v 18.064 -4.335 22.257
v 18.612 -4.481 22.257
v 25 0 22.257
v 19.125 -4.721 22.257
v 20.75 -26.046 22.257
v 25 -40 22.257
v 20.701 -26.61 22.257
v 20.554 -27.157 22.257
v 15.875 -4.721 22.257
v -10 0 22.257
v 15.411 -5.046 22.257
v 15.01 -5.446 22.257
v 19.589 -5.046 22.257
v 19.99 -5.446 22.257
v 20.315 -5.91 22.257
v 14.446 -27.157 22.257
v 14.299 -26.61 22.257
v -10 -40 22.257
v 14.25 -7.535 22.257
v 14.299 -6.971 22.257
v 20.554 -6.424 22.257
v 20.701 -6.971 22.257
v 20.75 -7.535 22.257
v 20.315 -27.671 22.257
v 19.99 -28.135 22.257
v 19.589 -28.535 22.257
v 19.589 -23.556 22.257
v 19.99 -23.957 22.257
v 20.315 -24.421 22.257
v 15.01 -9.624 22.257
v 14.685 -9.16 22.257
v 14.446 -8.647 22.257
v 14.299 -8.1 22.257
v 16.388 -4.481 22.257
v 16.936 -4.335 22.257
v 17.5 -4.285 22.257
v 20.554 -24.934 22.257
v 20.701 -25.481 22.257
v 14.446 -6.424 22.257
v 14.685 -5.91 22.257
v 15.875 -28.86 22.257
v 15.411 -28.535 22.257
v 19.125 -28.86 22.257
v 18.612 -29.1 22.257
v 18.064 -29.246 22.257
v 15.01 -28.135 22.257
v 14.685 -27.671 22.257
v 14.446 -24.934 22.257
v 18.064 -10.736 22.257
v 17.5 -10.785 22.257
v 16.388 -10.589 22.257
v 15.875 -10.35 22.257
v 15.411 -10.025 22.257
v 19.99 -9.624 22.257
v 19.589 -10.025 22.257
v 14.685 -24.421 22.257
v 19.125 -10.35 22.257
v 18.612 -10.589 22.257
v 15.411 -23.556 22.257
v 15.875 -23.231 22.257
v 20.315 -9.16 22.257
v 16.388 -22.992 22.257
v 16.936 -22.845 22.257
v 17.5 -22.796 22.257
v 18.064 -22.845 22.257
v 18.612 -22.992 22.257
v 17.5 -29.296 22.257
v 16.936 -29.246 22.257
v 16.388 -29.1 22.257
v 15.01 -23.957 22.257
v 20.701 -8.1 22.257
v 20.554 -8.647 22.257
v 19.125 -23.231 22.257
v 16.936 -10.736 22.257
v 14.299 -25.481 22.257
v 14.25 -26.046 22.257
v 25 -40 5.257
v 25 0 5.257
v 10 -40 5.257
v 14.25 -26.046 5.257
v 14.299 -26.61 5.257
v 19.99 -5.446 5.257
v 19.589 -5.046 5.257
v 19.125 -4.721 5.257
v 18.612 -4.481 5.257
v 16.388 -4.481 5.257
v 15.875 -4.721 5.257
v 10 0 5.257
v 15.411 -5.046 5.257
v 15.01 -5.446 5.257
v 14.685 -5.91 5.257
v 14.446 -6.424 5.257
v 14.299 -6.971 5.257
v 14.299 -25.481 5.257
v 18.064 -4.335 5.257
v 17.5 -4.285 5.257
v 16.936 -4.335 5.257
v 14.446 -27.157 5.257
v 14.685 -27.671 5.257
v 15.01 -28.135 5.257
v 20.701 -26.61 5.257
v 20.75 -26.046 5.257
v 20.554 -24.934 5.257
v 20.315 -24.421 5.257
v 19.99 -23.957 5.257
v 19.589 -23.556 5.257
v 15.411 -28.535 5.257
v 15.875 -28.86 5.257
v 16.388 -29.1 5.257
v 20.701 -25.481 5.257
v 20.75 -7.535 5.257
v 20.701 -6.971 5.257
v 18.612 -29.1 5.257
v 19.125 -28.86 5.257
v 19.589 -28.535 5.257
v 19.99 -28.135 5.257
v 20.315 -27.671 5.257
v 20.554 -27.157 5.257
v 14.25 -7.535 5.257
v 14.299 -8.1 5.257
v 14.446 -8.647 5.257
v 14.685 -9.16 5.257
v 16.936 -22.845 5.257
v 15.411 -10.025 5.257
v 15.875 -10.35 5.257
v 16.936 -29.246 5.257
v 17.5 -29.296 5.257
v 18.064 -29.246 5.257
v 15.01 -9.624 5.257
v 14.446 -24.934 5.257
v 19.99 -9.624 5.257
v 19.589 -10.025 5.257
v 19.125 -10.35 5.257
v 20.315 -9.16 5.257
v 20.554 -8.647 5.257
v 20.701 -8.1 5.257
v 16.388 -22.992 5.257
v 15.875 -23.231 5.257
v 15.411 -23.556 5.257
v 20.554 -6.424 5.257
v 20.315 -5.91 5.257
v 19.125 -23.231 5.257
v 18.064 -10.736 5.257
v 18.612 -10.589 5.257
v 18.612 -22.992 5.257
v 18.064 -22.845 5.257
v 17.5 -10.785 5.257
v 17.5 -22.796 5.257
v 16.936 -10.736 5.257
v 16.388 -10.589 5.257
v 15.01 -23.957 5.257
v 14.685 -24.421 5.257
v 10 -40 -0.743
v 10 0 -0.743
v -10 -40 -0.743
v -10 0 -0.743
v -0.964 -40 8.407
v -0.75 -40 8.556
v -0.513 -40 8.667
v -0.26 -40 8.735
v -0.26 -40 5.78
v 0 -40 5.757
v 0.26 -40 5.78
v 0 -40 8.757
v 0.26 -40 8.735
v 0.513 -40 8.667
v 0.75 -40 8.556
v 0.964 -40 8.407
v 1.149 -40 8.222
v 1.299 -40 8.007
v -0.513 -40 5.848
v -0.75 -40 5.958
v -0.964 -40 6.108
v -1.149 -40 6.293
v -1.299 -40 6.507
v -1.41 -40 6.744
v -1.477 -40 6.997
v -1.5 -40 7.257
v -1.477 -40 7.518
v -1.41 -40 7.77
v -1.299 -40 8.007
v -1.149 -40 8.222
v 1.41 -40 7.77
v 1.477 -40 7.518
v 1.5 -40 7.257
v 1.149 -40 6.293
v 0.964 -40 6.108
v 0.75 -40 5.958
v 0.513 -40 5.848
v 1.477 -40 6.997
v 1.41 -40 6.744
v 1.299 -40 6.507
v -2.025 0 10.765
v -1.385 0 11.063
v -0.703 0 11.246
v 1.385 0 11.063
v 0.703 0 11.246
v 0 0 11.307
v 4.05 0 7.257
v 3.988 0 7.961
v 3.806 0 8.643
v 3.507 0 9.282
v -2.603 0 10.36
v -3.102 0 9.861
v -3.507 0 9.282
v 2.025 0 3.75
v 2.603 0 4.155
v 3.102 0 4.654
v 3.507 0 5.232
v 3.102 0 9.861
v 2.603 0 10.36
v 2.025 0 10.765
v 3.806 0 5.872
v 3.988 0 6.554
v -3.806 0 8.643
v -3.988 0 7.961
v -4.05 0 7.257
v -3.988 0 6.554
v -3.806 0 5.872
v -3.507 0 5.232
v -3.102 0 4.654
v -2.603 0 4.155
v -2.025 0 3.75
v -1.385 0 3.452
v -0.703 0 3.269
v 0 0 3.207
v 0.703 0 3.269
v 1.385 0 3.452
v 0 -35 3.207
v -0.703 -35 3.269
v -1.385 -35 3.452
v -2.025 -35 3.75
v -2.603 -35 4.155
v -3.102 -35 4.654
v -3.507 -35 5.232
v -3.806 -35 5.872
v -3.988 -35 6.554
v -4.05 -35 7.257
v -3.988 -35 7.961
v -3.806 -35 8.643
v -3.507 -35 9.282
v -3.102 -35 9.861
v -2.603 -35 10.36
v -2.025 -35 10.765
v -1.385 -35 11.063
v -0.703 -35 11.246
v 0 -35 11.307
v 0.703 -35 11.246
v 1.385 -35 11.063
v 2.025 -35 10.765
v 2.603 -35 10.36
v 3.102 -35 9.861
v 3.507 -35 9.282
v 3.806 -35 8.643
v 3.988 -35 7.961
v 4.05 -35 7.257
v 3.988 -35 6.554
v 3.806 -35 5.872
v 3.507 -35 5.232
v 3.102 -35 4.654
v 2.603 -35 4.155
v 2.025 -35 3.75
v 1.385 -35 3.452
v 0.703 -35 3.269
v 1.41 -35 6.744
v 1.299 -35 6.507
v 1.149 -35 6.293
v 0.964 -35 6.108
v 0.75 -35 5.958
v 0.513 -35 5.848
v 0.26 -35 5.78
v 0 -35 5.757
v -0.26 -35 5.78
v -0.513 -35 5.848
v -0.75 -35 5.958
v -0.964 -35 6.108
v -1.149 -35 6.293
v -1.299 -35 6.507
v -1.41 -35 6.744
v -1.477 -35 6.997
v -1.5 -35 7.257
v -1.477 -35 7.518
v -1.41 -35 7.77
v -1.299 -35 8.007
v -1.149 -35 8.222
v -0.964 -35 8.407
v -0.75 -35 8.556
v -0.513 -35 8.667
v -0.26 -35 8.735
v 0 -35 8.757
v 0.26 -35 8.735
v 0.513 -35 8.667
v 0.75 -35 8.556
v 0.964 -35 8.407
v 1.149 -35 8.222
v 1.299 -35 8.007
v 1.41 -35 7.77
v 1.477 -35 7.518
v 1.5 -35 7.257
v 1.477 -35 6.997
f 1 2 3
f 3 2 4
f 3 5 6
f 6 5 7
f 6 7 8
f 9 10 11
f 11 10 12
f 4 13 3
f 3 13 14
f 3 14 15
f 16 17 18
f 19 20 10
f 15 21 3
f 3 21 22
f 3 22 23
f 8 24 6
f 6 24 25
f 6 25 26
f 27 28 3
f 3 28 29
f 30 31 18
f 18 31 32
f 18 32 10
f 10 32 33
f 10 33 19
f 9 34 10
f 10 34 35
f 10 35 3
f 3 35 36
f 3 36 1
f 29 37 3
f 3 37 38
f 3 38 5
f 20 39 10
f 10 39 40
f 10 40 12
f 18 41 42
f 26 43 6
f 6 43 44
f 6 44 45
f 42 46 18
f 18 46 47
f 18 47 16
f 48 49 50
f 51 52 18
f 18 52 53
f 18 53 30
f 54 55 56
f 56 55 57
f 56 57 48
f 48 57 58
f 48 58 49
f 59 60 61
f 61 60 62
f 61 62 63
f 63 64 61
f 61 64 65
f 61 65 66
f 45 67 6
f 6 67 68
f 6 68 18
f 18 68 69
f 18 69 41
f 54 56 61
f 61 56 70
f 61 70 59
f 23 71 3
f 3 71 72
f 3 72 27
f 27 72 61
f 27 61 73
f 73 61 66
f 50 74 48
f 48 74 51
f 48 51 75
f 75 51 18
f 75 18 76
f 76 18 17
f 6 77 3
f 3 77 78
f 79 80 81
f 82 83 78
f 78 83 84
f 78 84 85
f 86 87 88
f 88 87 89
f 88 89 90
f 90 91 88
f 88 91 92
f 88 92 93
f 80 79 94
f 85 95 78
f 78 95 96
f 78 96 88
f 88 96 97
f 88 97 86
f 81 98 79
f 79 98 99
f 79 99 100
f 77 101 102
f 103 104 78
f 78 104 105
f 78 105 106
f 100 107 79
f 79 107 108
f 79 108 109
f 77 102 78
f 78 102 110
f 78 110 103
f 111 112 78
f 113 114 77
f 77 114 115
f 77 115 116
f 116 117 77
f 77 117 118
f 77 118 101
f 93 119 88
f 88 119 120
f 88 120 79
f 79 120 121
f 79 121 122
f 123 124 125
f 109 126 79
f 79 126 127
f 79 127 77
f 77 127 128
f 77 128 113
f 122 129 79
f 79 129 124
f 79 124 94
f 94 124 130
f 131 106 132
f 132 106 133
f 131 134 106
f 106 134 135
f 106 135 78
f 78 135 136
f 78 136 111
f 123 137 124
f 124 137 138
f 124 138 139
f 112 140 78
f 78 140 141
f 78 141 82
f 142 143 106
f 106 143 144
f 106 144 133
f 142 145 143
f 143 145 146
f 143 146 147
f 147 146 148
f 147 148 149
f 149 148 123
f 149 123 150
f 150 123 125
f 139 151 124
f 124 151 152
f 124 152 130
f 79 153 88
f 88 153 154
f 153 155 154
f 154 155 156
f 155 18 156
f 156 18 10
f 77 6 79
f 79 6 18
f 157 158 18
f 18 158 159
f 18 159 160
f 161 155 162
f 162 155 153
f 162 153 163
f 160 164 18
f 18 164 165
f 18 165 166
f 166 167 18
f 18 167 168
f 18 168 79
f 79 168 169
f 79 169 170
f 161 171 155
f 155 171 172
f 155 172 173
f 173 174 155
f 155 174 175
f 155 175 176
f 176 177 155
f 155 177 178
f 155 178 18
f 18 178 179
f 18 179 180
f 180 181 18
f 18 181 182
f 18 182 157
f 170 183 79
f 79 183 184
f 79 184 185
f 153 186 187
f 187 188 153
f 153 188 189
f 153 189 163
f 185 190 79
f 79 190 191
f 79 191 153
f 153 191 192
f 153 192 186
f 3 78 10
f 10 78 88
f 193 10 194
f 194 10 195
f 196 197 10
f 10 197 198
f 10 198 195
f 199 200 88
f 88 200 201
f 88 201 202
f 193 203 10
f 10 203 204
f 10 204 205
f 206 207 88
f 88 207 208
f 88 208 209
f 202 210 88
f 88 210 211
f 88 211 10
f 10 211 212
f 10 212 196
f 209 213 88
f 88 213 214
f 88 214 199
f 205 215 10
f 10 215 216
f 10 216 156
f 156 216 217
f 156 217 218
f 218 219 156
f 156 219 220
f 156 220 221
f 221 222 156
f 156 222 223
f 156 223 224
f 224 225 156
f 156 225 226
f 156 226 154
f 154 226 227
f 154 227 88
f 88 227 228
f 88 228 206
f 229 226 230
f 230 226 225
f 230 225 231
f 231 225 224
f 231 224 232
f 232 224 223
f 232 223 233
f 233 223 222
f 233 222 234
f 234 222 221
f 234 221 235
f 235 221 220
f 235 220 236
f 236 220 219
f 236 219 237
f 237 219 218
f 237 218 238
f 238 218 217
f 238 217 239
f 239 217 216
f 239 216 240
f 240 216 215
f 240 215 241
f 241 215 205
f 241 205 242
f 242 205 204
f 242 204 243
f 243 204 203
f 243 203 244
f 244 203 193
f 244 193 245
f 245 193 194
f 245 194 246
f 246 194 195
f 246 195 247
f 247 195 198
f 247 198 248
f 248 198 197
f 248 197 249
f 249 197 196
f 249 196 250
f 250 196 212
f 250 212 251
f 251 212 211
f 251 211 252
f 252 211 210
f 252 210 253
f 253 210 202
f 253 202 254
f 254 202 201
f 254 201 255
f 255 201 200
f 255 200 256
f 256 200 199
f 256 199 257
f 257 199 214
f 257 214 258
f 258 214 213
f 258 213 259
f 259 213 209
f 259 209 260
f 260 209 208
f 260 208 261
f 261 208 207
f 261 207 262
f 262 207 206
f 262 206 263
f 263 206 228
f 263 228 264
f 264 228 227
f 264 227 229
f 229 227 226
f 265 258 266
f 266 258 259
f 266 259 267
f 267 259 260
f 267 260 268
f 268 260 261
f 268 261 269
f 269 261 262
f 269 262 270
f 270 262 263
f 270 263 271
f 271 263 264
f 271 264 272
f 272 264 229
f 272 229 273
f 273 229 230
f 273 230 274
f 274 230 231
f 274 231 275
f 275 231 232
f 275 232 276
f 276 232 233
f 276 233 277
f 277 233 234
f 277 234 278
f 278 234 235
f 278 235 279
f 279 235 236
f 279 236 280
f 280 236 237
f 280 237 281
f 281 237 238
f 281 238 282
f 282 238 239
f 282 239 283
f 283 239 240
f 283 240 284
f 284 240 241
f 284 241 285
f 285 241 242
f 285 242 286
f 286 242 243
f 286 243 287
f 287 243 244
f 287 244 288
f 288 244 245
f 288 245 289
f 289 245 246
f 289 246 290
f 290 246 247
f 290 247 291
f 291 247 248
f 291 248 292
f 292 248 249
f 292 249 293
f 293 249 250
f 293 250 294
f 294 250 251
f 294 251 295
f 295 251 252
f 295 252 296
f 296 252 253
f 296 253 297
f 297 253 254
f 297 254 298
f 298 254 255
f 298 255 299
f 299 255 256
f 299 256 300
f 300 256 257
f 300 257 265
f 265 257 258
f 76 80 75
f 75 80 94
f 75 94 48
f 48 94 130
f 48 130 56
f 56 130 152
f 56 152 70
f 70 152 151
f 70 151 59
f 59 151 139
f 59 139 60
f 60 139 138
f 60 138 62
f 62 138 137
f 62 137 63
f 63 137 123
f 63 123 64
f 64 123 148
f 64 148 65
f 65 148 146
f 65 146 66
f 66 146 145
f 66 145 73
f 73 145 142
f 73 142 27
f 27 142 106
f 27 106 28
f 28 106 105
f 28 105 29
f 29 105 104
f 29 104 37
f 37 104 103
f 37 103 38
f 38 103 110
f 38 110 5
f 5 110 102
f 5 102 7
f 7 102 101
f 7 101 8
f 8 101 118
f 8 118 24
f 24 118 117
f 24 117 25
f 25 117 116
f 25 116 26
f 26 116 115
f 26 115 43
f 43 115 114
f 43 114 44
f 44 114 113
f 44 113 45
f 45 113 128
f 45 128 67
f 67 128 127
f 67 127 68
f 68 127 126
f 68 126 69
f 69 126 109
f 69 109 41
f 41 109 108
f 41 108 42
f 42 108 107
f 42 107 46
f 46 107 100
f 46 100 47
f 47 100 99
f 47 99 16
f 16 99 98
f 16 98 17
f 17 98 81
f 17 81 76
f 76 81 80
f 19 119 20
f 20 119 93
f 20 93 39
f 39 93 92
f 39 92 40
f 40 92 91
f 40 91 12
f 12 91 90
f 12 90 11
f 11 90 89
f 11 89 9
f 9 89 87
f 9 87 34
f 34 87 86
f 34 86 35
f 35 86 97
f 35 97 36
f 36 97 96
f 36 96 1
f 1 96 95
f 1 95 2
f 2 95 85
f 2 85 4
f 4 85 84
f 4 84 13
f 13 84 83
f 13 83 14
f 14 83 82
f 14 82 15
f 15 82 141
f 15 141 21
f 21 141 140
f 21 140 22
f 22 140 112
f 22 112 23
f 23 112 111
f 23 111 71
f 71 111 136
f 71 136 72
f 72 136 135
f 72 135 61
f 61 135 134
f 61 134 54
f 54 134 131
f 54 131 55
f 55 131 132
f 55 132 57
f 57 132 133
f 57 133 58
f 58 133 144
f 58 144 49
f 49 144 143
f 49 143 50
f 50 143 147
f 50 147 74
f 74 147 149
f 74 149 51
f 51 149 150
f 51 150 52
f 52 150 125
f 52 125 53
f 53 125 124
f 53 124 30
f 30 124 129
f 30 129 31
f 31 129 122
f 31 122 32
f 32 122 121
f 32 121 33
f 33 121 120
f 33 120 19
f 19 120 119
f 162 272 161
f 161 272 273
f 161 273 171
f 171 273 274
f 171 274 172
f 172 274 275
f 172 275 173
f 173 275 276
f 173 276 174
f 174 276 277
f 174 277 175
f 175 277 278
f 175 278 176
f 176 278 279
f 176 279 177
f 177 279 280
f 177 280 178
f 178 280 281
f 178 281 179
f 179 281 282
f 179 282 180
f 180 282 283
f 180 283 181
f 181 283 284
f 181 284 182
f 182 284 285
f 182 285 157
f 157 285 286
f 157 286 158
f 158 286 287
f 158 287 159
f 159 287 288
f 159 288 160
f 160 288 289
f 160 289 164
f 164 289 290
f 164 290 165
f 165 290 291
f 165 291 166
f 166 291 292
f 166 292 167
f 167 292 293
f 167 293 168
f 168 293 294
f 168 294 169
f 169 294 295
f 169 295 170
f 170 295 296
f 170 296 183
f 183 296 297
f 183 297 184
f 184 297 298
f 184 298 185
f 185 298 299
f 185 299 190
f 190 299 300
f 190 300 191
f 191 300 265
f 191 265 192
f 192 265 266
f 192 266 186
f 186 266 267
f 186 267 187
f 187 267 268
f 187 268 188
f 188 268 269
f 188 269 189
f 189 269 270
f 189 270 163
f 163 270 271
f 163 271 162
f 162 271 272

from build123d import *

# Parameters (mm, degrees)
BOSS_EXTRUDE2_DEPTH = 40
SKETCH3_R           = 4.05
CUT_EXTRUDE1_DEPTH  = 35
CUT_EXTRUDE2_REACH  = 19
SKETCH4_R           = 3.25
SKETCH6_R           = 1.5
CUT_EXTRUDE3_DEPTH  = 10


with BuildPart() as part:
    # Sketch1 → Boss-Extrude2 (new body)
    with BuildSketch(Plane(origin=(0, 0, 0), x_dir=(1, 0, 0), z_dir=(0, 1, 0))):
        Polygon((-10, -5.257459708), (-10, 0.742540292), (10, 0.742540292), (10, -5.257459708), (25, -5.257459708), (25, -22.257459708), (-10, -22.257459708), align=None)
    extrude(amount=BOSS_EXTRUDE2_DEPTH)

    # Sketch3 → Cut-Extrude1 (cut)
    with BuildSketch(Plane.XZ):
        with Locations((0, 7.257459708)):
            Circle(SKETCH3_R)
    extrude(amount=-CUT_EXTRUDE1_DEPTH, mode=Mode.SUBTRACT)

    # Sketch4 → Cut-Extrude2 (cut, up to next)
    with BuildSketch(Plane(origin=(0, 0, 5.257459708), x_dir=(-1, 0, 0), z_dir=(0, 0, -1)), mode=Mode.PRIVATE) as cut_extrude2_sk1:
        with Locations((-17.5, 26.045770547)):
            Circle(SKETCH4_R)
    cut_extrude2_tool1 = extrude(cut_extrude2_sk1.sketch, amount=-CUT_EXTRUDE2_REACH, mode=Mode.PRIVATE) & part.part
    add(cut_extrude2_tool1.solids().sort_by_distance((17.5, 26.045771, 5.25746))[0], mode=Mode.SUBTRACT)
    # Sketch4 → Cut-Extrude2 (cut, up to next)
    with BuildSketch(Plane(origin=(0, 0, 5.257459708), x_dir=(-1, 0, 0), z_dir=(0, 0, -1)), mode=Mode.PRIVATE) as cut_extrude2_sk2:
        with Locations((-17.5, 7.535290978)):
            Circle(SKETCH4_R)
    cut_extrude2_tool2 = extrude(cut_extrude2_sk2.sketch, amount=-CUT_EXTRUDE2_REACH, mode=Mode.PRIVATE) & part.part
    add(cut_extrude2_tool2.solids().sort_by_distance((17.5, 7.535291, 5.25746))[0], mode=Mode.SUBTRACT)

    # Sketch6 → Cut-Extrude3 (cut)
    with BuildSketch(Plane.XZ.offset(-35)):
        with Locations((0, 7.257459708)):
            Circle(SKETCH6_R)
    extrude(amount=-CUT_EXTRUDE3_DEPTH, mode=Mode.SUBTRACT)


with BuildPart() as body_2:
    # Mirror4: mirrored copy
    add(part.part.mirror(Plane.ZX))


solid = body_2.part
